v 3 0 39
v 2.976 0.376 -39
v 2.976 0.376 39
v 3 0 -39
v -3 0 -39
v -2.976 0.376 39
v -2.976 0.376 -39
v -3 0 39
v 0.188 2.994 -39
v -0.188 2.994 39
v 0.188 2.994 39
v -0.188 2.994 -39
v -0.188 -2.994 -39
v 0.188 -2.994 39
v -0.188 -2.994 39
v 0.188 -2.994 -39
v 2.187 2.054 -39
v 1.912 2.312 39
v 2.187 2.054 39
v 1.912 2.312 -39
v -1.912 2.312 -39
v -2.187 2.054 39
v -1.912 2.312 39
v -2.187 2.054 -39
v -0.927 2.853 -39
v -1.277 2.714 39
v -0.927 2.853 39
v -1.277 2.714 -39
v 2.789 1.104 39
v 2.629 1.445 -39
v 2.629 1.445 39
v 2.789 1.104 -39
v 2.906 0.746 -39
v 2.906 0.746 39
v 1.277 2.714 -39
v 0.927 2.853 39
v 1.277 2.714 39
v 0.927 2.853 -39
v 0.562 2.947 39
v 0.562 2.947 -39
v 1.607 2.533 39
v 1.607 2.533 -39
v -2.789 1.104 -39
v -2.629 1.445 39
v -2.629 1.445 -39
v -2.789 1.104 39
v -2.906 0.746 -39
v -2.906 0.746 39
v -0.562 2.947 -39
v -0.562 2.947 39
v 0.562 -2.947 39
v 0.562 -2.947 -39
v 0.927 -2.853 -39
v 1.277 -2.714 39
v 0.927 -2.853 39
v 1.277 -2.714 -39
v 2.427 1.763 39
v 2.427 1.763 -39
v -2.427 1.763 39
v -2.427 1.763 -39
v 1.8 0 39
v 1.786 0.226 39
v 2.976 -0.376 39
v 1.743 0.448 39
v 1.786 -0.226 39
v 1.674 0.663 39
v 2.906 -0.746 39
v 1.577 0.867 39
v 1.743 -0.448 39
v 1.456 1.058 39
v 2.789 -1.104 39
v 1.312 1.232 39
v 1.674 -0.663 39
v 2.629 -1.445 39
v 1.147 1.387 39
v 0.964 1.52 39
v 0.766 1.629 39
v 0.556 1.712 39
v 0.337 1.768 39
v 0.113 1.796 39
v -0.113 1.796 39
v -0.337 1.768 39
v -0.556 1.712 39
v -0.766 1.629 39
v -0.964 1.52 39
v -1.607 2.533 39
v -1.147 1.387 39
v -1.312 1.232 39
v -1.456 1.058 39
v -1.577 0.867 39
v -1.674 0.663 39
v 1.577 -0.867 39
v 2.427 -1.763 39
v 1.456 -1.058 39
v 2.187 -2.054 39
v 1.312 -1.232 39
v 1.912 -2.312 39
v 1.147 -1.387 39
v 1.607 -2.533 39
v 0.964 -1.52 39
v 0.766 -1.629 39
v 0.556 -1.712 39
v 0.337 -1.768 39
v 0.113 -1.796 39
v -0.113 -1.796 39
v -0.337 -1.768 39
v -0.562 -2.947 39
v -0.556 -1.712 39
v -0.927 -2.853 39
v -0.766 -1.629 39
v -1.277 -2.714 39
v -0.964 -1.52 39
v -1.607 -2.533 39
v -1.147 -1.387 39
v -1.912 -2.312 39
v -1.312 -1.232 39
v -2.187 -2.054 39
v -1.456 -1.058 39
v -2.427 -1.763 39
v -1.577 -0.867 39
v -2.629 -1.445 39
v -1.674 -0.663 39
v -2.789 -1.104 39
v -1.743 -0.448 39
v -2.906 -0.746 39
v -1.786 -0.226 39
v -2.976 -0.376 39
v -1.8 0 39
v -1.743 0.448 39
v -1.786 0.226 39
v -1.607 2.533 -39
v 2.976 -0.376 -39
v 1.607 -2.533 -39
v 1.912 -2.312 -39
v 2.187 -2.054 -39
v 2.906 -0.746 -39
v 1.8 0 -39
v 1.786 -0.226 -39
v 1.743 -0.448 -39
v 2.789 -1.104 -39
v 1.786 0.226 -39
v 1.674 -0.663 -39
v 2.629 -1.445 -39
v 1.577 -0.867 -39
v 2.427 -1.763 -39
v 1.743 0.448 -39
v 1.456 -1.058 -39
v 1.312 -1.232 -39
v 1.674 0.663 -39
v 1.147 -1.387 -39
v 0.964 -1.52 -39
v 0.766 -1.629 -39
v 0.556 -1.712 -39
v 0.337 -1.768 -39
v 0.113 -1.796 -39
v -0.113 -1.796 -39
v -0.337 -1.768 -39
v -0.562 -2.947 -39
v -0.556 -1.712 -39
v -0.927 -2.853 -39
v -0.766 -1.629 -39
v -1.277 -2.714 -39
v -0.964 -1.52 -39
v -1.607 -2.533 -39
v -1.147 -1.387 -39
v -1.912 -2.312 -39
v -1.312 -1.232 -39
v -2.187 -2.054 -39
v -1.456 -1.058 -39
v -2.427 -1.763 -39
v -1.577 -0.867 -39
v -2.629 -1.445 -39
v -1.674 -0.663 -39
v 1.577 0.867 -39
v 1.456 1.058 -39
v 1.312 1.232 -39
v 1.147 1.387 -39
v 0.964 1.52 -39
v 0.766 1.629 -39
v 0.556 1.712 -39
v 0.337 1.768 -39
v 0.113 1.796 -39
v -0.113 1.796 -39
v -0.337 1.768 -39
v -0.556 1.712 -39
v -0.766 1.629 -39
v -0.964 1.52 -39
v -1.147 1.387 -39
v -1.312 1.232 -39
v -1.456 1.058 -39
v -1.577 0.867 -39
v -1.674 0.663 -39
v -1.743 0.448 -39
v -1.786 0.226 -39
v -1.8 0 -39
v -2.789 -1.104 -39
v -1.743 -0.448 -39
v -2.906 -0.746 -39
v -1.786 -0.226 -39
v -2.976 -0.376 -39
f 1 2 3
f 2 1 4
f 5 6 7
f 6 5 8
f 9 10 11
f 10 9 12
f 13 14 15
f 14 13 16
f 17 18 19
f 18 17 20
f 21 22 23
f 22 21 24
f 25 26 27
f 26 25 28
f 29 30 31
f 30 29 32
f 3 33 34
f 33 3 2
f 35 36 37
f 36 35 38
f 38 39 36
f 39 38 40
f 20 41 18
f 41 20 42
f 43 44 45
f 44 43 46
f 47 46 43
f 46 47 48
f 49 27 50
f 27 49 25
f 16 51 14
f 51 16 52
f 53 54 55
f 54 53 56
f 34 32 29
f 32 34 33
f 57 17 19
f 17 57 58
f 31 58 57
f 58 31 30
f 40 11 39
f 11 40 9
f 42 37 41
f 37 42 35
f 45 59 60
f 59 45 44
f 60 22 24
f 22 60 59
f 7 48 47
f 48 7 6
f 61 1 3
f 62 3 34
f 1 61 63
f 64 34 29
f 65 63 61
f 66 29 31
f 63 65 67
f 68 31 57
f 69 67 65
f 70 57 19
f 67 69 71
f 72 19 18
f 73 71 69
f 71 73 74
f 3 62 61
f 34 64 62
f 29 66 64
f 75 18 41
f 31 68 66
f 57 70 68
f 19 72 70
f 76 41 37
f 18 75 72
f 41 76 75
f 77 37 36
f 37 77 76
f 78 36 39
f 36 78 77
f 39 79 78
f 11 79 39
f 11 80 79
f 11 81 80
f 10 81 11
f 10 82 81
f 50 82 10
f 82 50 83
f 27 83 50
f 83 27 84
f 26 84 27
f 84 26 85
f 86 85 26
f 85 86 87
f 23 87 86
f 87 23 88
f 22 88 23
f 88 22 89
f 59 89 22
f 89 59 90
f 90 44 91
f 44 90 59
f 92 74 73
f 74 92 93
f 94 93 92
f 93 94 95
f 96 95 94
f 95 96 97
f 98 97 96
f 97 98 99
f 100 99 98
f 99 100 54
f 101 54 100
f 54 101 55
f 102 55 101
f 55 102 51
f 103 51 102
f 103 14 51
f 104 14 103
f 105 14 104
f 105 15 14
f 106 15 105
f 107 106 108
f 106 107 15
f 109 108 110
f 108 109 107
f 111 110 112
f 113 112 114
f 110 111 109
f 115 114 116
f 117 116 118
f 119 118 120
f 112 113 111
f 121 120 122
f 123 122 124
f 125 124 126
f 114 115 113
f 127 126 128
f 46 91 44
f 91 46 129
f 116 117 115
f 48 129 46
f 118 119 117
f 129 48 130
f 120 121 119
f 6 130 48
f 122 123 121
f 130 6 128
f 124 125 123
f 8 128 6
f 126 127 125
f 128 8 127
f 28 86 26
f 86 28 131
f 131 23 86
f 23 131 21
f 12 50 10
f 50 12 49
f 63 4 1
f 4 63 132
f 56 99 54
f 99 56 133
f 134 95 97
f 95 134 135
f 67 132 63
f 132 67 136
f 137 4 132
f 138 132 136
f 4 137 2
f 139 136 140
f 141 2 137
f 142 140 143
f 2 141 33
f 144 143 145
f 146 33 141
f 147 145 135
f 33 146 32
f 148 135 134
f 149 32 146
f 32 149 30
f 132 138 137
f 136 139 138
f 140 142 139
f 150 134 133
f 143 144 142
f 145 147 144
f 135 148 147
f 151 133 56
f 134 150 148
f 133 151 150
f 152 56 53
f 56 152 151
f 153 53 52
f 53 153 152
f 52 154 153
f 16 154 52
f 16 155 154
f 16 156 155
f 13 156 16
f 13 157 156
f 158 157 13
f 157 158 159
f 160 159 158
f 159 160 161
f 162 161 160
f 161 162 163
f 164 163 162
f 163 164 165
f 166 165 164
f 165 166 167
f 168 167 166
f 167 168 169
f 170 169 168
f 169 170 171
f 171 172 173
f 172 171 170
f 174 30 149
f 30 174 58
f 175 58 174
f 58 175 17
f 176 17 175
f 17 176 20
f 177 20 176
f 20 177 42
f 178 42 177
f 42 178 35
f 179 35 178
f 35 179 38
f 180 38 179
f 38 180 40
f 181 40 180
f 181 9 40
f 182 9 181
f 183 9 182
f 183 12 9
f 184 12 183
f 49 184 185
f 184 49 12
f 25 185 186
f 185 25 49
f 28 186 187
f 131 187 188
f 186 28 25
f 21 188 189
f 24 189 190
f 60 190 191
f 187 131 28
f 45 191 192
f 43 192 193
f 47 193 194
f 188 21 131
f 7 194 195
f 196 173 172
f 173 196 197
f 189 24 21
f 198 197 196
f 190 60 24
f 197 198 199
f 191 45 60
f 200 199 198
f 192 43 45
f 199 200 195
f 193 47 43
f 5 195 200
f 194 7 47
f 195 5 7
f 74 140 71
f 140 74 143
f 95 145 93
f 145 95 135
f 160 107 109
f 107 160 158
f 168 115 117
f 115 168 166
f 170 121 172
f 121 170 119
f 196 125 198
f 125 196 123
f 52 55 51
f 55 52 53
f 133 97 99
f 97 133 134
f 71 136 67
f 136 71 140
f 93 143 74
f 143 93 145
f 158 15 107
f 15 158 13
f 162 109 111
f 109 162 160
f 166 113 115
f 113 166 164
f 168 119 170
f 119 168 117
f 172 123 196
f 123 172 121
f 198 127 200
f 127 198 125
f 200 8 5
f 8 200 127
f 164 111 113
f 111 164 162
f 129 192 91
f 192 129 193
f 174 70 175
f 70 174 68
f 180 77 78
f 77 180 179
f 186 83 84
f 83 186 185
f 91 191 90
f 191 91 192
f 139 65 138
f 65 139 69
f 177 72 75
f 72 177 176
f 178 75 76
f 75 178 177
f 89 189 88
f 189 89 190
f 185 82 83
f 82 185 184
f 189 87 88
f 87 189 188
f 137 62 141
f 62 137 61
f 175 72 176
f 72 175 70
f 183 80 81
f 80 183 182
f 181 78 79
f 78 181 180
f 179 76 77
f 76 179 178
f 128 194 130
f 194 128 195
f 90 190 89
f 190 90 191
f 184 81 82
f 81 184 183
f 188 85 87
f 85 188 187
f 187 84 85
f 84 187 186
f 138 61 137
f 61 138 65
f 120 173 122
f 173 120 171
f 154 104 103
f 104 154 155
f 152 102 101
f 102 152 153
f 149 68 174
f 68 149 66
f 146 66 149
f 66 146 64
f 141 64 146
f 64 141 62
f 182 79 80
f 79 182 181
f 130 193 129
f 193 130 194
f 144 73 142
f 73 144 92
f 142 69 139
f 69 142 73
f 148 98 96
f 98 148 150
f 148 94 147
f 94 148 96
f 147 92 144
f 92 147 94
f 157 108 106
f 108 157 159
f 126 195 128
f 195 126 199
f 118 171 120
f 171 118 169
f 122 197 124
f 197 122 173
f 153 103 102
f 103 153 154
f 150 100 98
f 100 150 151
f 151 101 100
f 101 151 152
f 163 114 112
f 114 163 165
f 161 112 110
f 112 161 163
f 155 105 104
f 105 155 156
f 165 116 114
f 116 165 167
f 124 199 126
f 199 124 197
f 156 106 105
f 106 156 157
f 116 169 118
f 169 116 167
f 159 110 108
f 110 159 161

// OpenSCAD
$fn = 50;


difference() {
	union() {
		translate(v = [0, 0, -39.0000000000]) {
			cylinder(h = 78, r = 3.0000000000);
		}
	}
	union() {
		translate(v = [0, 0, -100.0000000000]) {
			cylinder(h = 200, r = 1.8000000000);
		}
	}
}
